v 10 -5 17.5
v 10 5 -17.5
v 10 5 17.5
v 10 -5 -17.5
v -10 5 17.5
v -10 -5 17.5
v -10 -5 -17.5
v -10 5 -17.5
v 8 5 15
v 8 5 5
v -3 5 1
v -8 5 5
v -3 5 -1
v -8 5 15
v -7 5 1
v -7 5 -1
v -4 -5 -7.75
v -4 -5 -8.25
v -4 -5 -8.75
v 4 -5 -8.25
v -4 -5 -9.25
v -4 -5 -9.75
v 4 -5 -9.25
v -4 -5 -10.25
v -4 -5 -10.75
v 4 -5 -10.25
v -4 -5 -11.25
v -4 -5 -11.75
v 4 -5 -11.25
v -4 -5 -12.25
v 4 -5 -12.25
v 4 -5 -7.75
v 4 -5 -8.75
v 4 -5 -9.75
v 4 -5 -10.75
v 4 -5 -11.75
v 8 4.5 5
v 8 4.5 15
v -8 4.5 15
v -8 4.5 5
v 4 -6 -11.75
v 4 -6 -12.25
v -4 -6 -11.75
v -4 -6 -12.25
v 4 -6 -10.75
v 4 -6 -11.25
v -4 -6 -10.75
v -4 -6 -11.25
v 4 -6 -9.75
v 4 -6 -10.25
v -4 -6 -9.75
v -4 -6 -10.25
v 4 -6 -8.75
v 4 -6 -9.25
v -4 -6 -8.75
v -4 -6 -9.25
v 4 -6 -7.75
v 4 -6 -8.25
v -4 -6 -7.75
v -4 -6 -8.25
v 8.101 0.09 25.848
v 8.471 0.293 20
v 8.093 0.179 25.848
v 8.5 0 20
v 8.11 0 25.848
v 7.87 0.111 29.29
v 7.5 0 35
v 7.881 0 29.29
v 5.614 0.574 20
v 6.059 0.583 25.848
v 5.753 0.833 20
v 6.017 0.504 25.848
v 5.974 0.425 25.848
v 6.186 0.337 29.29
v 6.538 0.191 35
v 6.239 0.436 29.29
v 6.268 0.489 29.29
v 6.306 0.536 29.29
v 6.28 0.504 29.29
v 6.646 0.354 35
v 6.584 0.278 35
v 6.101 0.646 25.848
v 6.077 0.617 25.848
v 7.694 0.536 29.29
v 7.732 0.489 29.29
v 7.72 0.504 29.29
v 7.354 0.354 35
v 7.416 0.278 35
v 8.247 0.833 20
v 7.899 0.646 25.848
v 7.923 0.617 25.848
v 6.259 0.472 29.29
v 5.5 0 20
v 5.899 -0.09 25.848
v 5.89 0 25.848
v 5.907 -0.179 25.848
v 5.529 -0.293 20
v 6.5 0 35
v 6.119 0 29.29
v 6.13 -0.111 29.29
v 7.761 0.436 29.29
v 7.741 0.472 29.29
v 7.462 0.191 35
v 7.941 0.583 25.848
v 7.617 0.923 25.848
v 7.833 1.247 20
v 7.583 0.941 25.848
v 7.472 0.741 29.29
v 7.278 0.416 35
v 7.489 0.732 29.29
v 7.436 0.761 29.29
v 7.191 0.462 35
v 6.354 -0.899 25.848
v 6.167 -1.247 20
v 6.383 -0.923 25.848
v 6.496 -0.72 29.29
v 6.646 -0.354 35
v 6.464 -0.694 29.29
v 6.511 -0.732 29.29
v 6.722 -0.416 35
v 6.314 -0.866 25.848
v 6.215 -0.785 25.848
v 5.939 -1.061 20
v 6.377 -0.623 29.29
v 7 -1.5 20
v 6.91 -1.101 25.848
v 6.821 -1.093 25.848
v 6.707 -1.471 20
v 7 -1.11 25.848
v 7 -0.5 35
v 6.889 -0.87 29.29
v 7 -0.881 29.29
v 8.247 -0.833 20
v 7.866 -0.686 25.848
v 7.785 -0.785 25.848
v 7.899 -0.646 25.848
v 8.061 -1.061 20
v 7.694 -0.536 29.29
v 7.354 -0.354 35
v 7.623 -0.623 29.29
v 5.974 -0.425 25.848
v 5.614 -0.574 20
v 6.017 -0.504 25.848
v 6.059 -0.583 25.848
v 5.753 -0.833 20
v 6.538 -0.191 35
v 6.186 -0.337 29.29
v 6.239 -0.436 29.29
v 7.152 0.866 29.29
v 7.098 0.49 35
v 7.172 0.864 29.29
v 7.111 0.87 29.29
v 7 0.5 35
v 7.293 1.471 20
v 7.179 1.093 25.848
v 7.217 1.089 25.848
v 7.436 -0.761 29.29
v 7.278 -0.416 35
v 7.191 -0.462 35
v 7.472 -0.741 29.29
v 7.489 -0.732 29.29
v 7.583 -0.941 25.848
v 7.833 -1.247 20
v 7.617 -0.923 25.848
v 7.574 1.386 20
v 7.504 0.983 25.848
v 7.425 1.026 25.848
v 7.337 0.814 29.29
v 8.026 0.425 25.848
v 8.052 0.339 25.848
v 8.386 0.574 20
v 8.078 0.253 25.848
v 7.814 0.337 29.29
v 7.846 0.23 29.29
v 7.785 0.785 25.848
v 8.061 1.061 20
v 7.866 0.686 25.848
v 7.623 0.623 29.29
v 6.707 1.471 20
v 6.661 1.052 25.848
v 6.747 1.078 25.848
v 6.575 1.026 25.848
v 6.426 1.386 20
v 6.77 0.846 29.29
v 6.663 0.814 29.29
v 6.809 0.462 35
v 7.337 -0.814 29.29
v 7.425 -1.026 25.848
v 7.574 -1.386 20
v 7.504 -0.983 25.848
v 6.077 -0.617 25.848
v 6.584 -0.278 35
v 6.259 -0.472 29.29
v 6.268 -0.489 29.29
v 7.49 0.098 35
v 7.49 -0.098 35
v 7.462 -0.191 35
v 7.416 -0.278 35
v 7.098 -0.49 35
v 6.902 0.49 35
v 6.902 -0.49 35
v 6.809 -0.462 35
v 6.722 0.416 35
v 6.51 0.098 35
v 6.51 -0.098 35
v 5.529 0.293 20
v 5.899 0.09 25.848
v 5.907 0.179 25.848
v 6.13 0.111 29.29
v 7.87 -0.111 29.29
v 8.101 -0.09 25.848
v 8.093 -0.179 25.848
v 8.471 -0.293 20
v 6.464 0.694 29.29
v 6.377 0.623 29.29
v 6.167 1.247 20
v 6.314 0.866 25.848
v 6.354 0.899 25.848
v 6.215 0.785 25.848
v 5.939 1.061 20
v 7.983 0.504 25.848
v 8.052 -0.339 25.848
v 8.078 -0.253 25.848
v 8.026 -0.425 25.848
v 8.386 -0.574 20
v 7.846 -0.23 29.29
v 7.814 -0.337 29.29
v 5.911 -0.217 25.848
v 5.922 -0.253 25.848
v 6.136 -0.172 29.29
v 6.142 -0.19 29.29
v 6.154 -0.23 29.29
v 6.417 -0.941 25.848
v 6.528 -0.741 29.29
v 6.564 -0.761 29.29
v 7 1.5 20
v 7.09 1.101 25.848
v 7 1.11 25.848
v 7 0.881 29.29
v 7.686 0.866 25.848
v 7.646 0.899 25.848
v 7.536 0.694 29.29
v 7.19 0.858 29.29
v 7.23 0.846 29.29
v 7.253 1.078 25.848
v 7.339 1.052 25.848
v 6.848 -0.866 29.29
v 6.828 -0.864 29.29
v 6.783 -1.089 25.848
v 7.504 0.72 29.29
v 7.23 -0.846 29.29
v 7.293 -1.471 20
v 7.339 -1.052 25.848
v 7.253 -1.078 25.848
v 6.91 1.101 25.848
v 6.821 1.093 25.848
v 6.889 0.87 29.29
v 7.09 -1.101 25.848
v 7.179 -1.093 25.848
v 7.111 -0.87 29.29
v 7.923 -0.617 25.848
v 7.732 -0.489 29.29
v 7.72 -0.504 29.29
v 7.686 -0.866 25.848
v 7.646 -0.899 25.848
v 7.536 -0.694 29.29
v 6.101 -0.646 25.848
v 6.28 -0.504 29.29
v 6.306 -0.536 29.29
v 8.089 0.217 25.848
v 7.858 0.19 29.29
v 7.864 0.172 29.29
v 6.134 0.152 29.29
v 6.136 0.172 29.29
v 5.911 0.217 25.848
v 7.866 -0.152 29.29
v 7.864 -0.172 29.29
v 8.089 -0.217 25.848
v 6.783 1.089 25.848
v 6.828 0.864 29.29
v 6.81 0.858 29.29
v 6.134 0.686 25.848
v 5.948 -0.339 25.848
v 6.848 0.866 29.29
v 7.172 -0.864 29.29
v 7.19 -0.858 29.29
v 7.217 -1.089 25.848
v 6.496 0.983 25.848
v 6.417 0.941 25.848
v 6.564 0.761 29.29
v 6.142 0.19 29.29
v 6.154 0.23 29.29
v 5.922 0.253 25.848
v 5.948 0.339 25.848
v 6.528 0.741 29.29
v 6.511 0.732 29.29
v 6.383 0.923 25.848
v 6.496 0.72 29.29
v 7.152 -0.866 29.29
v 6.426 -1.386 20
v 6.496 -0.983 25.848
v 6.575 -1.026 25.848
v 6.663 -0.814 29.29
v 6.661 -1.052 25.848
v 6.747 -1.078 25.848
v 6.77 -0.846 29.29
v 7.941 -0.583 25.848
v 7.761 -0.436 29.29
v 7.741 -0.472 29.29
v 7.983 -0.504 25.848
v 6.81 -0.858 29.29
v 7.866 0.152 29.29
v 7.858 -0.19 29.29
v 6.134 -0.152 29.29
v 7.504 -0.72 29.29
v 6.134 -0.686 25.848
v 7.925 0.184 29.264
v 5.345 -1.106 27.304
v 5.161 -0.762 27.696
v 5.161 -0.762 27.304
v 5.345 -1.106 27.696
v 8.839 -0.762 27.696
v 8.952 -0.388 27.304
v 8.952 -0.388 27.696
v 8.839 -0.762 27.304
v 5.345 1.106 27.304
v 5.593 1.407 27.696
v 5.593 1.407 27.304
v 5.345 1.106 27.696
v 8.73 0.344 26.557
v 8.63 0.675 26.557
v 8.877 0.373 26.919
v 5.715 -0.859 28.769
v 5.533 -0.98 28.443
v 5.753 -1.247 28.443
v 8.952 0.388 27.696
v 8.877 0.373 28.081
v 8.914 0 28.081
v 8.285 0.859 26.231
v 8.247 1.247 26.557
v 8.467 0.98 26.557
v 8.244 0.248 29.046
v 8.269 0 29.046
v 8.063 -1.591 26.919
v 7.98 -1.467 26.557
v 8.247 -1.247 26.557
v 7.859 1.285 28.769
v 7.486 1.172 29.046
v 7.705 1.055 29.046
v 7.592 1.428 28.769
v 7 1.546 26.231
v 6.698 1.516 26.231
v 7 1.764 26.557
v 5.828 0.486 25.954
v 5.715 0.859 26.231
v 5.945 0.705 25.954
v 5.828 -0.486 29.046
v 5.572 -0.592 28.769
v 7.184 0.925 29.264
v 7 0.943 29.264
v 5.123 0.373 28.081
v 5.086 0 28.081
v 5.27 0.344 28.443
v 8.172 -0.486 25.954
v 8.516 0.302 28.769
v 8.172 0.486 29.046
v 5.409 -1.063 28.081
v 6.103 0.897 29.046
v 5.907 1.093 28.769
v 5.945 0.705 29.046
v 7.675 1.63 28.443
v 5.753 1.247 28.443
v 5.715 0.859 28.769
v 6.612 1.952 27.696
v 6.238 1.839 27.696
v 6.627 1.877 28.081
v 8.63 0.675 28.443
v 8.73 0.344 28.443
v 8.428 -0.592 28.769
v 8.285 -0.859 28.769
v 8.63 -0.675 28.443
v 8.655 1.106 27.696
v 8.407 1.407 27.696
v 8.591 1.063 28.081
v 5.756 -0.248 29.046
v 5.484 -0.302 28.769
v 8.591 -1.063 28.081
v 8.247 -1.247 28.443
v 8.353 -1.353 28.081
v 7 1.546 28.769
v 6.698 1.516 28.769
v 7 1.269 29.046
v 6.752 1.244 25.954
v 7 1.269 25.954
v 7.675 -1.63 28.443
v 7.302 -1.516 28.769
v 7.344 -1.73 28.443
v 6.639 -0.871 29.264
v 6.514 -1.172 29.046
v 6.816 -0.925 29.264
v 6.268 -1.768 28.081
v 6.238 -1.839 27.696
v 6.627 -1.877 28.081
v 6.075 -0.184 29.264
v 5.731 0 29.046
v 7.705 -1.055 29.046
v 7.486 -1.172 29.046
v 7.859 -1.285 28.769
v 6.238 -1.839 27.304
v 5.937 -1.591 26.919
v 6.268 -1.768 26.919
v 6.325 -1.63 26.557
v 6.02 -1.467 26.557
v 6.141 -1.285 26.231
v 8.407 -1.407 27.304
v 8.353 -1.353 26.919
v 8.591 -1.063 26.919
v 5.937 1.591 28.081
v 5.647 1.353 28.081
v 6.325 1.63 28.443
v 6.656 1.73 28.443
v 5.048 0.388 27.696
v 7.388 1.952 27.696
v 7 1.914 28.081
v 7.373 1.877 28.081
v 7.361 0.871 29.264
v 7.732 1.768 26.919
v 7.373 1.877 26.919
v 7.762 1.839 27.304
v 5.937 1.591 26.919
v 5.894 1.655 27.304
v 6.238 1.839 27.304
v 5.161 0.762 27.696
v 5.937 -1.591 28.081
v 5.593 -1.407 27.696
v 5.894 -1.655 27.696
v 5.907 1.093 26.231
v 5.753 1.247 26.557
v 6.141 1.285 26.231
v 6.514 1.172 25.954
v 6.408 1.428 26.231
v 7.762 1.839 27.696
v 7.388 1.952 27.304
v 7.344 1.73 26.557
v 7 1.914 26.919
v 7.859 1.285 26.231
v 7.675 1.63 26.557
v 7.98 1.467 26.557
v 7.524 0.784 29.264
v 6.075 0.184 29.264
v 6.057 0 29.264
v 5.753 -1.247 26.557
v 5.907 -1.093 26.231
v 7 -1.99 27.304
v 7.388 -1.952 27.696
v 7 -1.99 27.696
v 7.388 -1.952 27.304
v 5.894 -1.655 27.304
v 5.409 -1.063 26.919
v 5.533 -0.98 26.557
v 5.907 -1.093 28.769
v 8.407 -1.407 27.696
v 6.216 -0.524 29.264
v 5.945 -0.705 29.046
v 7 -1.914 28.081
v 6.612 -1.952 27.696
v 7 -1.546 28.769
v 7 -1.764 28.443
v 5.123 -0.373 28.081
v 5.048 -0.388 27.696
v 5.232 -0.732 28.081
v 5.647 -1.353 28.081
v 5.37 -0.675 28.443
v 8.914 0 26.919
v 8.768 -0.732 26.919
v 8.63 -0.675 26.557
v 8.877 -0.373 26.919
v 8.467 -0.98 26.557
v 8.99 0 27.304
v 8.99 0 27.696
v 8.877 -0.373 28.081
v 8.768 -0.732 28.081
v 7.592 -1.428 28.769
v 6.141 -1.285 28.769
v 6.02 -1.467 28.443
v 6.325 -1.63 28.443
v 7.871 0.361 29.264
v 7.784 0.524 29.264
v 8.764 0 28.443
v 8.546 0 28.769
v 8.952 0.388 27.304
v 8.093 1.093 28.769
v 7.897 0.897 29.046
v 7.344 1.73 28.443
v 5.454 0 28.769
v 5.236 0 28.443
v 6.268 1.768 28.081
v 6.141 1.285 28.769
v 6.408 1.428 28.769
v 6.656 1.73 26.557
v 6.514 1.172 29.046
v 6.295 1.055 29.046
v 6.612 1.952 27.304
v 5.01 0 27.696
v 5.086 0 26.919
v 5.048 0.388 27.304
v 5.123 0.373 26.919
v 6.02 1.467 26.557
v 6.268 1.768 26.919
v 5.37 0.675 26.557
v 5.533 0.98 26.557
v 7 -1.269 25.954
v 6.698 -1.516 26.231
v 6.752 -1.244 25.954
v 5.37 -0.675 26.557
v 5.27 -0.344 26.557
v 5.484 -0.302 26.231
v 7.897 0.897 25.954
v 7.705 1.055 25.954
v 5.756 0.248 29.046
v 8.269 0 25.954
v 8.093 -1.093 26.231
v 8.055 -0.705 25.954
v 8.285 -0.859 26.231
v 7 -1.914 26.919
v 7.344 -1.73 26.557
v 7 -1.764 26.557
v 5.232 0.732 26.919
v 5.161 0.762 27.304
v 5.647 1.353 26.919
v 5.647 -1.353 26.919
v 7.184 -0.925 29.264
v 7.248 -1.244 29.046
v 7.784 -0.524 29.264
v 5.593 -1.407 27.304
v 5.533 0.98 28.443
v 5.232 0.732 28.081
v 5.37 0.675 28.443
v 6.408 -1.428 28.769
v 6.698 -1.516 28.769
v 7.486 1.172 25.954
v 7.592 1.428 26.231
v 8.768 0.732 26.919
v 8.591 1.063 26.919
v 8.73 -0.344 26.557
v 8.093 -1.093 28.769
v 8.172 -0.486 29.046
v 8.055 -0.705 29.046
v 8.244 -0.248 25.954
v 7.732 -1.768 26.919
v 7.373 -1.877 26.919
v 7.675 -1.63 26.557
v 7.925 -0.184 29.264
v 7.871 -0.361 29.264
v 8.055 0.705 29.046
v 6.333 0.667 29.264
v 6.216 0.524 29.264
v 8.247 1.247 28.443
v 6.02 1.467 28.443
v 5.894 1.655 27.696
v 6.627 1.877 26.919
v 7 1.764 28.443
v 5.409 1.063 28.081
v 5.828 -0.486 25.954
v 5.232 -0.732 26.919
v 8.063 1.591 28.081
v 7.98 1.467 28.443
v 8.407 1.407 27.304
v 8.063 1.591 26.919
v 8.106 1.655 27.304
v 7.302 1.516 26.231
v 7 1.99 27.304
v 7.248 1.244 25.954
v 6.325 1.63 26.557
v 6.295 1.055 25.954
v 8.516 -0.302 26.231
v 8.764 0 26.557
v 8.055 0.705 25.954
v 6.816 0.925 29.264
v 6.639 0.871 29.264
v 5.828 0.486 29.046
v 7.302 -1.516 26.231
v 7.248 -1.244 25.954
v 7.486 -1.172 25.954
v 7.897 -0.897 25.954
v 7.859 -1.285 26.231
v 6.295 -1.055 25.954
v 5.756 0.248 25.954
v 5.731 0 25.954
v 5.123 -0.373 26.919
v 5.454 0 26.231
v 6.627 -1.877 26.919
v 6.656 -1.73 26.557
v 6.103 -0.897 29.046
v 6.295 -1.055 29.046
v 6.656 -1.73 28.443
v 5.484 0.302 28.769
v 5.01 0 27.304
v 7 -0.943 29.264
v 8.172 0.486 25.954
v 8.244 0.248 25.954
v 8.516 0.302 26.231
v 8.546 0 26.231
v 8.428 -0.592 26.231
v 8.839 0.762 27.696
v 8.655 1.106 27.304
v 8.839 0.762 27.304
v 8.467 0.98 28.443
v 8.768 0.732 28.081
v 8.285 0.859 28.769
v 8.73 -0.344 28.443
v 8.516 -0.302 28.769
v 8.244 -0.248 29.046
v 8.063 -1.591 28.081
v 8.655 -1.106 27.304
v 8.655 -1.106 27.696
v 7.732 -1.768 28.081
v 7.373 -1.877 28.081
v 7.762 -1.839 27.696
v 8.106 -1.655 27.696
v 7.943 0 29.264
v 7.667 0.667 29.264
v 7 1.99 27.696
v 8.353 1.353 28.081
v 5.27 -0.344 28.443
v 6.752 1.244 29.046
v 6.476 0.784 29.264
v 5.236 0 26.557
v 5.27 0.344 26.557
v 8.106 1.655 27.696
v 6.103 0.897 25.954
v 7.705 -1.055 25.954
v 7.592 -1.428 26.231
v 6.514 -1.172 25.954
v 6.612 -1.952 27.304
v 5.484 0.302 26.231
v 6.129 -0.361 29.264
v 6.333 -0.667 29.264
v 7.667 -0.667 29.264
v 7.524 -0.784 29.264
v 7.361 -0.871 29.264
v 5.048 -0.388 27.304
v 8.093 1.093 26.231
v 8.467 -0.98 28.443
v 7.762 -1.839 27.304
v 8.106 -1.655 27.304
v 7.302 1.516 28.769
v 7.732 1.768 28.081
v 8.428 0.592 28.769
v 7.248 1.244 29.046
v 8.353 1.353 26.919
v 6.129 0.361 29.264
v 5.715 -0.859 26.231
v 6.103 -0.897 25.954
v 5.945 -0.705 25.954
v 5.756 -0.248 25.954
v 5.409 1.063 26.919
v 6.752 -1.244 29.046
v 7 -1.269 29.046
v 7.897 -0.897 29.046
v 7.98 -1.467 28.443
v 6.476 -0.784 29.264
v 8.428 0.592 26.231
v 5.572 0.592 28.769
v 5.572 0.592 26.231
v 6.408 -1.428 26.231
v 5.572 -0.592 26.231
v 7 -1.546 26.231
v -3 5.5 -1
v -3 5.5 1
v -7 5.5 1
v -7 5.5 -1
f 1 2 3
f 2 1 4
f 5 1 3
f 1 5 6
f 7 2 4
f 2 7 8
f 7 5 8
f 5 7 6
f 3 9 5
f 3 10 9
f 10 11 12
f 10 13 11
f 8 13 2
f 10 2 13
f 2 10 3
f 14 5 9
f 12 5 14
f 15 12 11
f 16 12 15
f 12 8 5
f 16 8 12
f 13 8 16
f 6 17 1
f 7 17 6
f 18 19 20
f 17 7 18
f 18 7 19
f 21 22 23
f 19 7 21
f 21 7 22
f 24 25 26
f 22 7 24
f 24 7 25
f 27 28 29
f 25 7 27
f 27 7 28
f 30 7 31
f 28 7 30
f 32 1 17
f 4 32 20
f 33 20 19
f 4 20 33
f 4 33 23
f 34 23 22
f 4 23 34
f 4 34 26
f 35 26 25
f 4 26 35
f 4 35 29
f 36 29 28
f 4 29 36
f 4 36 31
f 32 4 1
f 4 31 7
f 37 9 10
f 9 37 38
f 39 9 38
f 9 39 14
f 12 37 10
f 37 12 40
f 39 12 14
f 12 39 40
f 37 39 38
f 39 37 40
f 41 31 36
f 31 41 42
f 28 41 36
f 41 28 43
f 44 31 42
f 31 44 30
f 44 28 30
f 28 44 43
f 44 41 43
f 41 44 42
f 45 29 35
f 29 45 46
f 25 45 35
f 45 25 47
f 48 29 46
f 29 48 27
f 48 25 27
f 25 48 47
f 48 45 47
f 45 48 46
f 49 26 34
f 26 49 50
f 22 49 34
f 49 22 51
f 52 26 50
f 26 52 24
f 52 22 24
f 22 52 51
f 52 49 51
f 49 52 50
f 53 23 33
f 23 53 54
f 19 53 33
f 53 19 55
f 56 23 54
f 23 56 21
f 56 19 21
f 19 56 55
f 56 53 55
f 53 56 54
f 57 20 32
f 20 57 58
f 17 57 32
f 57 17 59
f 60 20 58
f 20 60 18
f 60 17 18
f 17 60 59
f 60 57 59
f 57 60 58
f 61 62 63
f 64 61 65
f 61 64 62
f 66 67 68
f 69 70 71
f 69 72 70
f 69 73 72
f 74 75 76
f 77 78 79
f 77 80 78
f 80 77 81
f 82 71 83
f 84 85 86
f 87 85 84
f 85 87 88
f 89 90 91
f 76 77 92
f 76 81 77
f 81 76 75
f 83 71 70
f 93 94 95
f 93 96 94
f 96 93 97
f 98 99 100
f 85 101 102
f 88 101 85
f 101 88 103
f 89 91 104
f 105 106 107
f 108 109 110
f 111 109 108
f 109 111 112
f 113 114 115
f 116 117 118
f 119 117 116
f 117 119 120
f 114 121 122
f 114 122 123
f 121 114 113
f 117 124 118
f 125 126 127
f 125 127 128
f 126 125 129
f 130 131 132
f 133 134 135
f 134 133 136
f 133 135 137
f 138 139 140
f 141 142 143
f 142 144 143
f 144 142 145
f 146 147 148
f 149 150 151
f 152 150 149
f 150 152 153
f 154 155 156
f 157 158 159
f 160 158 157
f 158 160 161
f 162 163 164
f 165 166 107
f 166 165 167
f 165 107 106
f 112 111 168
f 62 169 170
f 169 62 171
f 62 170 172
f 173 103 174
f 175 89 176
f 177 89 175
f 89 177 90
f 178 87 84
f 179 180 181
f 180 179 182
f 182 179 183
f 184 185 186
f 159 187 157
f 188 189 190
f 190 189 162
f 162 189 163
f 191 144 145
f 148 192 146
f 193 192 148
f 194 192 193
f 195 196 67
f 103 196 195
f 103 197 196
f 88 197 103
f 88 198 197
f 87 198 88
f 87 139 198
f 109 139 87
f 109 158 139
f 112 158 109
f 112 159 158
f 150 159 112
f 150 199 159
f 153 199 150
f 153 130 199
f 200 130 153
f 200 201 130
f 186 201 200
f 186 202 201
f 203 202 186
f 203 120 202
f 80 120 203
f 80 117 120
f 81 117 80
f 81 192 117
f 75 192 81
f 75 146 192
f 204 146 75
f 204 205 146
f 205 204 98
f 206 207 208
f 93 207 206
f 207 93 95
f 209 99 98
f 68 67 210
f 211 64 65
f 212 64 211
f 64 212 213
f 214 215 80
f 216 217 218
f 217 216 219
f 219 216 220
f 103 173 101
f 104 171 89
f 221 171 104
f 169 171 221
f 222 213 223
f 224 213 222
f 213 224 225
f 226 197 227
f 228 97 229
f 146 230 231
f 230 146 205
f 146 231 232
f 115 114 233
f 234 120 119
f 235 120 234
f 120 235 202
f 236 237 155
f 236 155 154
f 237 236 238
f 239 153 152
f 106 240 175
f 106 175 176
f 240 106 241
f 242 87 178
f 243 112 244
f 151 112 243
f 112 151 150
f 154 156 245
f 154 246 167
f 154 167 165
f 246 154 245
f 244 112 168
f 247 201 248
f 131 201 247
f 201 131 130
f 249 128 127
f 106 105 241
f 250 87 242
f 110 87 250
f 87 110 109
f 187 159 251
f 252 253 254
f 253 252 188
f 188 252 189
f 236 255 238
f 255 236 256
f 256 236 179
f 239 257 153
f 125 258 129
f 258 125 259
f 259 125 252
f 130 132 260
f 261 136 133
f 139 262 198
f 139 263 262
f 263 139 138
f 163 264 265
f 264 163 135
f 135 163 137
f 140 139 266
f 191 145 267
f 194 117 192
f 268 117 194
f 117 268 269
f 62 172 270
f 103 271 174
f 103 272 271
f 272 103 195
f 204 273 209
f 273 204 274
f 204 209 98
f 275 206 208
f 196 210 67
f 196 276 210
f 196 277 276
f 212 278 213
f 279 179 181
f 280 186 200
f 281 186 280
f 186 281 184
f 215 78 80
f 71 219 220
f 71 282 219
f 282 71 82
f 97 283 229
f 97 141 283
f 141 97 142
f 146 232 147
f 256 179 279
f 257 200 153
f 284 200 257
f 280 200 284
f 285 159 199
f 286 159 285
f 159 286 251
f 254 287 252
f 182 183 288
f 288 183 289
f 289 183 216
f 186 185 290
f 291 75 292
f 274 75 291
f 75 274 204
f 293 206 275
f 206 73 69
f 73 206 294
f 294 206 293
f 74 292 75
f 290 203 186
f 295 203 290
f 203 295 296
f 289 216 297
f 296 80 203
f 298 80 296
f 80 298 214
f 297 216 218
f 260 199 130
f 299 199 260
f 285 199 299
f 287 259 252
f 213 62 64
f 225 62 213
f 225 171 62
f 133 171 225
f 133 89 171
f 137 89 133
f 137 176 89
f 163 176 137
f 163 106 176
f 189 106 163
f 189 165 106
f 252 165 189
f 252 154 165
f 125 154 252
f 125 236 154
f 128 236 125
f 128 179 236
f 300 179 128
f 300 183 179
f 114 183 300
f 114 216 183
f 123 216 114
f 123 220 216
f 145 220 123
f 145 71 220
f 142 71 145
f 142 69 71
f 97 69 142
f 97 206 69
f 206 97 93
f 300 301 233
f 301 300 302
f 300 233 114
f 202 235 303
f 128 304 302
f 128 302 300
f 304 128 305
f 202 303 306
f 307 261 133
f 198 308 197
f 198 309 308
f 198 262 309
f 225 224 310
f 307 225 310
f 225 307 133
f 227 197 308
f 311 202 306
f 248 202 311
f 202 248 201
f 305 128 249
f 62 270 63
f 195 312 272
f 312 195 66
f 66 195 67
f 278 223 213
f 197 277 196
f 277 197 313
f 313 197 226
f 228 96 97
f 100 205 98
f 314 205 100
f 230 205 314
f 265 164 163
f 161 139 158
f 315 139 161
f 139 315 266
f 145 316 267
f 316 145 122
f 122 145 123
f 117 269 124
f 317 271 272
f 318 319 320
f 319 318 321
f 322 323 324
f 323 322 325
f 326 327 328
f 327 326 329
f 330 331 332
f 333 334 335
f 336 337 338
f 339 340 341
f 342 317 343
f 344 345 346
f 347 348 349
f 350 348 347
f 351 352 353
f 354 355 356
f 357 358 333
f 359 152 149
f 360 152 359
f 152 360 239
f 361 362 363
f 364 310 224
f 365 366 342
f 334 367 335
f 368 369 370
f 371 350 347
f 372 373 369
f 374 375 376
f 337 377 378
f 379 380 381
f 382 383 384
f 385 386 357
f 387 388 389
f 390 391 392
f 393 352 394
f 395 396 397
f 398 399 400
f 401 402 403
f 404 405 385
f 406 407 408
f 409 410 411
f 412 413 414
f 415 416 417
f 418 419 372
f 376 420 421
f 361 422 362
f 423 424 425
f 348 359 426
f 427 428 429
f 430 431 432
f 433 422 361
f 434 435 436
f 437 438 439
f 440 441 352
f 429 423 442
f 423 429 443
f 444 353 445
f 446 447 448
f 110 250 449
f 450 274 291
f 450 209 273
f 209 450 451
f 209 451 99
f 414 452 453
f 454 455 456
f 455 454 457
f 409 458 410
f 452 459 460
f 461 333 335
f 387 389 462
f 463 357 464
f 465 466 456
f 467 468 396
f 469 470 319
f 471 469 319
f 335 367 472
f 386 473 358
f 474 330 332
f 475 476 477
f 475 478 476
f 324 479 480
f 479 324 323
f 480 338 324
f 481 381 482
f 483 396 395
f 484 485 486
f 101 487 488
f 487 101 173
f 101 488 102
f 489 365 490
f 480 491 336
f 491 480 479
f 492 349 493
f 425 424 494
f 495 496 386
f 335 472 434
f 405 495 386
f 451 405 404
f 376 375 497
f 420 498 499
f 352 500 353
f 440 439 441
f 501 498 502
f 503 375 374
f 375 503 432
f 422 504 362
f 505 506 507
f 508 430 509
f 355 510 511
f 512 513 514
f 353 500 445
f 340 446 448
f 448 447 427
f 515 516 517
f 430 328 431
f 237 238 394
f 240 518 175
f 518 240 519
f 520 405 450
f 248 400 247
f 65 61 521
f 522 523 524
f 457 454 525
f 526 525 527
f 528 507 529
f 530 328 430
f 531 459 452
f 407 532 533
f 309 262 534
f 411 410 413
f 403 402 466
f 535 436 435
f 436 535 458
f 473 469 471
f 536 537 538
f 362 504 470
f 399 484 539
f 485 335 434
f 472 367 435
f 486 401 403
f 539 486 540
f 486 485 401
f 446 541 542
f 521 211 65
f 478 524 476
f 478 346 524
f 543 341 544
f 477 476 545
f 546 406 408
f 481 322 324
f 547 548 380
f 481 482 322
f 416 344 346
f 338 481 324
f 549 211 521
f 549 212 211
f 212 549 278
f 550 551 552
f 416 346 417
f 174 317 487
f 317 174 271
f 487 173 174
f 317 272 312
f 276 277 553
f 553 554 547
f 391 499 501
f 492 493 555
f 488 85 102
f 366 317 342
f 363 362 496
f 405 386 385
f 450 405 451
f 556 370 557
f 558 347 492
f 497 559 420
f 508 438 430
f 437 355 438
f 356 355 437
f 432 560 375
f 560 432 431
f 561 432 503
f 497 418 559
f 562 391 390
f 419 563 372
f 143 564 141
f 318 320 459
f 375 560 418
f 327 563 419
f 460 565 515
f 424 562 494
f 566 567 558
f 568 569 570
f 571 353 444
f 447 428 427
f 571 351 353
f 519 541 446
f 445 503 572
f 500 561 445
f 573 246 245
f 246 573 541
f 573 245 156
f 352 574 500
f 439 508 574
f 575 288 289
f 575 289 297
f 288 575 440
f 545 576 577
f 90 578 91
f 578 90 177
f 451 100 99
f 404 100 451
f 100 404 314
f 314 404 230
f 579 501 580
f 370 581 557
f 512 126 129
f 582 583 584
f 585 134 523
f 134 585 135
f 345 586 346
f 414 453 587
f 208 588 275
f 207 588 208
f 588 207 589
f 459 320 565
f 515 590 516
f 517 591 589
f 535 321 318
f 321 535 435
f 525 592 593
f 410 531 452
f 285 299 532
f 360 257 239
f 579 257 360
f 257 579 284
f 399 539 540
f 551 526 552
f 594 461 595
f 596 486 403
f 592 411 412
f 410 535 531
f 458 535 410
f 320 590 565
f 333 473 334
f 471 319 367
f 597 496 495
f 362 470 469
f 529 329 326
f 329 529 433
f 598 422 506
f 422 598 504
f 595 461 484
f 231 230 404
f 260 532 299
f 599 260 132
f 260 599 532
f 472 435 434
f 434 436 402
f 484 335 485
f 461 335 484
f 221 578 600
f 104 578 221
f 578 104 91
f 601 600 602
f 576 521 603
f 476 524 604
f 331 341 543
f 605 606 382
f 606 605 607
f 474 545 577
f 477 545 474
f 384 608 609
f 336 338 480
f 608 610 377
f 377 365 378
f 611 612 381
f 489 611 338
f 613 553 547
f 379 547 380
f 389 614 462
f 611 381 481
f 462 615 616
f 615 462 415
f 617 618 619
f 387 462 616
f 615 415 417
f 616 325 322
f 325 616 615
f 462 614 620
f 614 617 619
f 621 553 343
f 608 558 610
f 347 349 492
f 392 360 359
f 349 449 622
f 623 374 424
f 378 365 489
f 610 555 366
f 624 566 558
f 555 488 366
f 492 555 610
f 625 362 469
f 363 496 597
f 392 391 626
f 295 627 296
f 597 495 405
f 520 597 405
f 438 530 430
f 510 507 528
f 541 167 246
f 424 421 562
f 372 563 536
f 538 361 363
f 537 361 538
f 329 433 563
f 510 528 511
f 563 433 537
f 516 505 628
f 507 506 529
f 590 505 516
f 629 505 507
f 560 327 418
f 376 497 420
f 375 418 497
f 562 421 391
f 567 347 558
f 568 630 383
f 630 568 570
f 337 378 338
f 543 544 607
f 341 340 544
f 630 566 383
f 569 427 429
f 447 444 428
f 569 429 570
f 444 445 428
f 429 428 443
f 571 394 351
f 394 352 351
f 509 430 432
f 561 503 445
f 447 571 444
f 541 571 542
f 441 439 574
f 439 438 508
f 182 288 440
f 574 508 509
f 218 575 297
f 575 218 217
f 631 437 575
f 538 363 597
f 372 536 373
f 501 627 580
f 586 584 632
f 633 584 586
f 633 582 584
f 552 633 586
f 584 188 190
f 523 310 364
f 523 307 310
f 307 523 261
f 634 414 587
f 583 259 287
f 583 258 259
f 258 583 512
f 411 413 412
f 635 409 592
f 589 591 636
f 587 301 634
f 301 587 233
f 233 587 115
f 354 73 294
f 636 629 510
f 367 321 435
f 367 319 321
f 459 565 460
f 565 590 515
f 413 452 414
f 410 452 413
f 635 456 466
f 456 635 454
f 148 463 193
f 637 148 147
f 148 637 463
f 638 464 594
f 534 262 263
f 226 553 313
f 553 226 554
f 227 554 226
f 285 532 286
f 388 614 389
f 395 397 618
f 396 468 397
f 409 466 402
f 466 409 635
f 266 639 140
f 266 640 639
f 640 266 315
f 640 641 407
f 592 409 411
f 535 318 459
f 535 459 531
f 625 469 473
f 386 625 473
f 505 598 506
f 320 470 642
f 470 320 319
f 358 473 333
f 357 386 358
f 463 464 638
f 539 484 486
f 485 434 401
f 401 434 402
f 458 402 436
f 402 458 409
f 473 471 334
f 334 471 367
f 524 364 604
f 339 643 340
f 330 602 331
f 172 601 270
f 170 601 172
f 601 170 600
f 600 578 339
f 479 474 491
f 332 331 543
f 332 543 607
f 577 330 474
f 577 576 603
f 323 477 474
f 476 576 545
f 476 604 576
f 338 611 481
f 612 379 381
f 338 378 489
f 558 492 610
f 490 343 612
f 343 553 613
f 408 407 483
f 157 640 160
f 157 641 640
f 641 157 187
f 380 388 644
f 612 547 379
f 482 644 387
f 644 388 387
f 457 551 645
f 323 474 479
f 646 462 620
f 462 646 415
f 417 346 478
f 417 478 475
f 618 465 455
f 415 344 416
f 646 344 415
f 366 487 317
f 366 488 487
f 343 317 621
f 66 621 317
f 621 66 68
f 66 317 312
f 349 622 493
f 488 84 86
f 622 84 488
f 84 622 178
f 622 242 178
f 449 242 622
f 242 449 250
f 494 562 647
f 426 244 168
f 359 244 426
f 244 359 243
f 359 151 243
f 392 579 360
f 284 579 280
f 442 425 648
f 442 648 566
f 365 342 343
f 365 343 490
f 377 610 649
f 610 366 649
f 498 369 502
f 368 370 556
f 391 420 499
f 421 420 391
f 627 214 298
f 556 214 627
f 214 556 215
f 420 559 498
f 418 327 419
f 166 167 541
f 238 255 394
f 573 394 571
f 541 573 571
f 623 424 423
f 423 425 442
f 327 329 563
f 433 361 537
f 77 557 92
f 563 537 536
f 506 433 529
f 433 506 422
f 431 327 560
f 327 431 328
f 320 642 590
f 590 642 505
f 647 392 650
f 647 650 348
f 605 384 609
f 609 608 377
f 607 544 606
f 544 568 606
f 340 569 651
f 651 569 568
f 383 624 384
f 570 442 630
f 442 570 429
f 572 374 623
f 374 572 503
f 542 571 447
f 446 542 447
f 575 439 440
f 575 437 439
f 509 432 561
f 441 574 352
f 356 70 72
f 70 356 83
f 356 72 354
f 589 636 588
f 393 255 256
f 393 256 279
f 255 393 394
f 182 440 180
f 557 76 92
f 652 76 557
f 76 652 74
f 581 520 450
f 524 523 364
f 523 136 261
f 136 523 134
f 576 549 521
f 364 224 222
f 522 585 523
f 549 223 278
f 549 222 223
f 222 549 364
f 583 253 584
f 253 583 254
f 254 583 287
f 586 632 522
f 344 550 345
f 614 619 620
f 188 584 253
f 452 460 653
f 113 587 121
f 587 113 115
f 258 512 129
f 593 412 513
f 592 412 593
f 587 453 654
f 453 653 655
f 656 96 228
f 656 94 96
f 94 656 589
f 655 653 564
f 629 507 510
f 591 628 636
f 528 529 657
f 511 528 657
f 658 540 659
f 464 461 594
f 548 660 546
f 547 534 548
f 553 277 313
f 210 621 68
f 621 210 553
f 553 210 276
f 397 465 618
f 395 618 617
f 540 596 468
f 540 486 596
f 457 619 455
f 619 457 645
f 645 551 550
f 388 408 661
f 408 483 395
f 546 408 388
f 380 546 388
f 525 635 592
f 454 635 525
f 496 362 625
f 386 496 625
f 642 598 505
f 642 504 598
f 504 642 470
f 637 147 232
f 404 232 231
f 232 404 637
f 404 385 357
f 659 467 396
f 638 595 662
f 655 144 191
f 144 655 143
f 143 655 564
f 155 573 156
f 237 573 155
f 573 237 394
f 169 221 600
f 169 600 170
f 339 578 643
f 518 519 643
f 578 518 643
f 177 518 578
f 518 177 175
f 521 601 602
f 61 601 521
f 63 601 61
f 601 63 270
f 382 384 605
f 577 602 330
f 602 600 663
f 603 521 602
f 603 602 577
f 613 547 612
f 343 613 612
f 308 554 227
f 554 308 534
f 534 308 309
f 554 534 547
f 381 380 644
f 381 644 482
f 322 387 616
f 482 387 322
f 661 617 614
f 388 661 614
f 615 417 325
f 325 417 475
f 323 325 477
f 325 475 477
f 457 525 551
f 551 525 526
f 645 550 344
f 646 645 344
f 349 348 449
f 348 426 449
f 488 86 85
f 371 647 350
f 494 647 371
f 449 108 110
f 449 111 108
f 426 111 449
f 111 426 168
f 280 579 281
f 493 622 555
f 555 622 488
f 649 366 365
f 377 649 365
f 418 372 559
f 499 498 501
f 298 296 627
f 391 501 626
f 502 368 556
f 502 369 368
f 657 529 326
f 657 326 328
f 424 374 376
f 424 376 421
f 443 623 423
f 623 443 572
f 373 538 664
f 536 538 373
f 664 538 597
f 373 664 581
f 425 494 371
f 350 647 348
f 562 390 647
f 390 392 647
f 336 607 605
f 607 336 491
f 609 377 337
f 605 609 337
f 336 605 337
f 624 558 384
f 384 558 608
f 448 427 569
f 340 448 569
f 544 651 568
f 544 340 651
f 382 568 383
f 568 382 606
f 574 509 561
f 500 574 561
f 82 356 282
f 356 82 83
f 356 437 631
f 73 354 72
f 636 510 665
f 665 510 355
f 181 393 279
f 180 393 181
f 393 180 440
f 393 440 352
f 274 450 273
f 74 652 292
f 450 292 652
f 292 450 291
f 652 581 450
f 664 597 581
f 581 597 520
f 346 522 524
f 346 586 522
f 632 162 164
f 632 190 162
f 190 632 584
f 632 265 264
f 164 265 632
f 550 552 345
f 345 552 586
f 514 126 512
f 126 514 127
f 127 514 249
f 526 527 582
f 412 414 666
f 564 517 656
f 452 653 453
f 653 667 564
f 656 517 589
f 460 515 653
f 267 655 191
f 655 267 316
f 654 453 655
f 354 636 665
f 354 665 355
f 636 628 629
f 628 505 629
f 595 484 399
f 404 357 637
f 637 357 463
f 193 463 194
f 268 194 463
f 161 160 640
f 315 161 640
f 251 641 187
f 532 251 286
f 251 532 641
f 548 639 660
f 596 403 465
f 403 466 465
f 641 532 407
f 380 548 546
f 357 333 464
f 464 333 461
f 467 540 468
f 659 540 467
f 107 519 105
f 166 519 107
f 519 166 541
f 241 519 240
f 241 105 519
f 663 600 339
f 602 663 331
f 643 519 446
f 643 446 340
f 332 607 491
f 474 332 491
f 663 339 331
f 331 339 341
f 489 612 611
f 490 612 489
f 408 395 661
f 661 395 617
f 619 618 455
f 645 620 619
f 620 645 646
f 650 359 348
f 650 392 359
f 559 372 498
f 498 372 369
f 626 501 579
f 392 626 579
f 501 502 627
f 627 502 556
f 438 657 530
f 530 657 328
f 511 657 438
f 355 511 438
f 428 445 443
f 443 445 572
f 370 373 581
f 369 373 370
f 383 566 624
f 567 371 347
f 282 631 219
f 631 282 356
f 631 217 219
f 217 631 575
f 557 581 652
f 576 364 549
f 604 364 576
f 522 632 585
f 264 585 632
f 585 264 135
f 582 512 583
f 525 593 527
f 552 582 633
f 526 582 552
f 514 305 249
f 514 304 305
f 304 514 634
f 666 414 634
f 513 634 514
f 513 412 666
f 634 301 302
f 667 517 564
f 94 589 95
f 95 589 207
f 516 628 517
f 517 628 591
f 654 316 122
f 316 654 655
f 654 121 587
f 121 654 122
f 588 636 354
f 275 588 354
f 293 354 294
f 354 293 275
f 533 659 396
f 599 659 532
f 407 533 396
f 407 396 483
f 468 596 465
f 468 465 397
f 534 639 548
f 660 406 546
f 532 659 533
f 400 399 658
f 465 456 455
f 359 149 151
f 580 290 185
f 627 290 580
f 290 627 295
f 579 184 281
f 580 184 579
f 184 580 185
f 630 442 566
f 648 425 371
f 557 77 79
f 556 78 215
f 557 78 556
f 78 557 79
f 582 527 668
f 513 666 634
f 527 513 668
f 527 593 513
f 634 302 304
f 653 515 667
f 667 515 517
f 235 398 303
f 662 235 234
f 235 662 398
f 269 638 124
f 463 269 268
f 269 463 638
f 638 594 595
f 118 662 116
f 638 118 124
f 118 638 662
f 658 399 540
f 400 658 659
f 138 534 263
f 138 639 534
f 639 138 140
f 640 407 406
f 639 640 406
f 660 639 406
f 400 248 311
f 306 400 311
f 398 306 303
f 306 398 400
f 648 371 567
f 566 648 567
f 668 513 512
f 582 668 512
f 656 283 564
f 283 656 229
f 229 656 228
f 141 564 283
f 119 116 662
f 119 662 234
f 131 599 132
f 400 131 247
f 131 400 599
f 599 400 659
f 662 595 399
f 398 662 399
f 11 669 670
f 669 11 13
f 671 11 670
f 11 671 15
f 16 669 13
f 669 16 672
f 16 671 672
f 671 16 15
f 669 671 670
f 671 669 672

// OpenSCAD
$fn = 32;

module walkie_talkie() {
    // Main body
    difference() {
        cube([20, 10, 35], center = true);
        // Screen area
        translate([0, 5, 10])
            cube([16, 1, 10], center = true);
    }

    // Antenna
    translate([7, 0, 20])
        cylinder(h = 15, r1 = 1.5, r2 = 0.5);
    
    translate([7, 0, 27.5])
        sphere(r = 2);

    // Speaker grill area (simplified)
    translate([0, -5, -10])
        for (i = [-2:2]) {
            translate([0, -0.5, i])
                cube([8, 1, 0.5], center = true);
        }
        
    // Button/Control area
    translate([-5, 5, 0])
        cube([4, 1, 2], center = true);
}

walkie_talkie();
